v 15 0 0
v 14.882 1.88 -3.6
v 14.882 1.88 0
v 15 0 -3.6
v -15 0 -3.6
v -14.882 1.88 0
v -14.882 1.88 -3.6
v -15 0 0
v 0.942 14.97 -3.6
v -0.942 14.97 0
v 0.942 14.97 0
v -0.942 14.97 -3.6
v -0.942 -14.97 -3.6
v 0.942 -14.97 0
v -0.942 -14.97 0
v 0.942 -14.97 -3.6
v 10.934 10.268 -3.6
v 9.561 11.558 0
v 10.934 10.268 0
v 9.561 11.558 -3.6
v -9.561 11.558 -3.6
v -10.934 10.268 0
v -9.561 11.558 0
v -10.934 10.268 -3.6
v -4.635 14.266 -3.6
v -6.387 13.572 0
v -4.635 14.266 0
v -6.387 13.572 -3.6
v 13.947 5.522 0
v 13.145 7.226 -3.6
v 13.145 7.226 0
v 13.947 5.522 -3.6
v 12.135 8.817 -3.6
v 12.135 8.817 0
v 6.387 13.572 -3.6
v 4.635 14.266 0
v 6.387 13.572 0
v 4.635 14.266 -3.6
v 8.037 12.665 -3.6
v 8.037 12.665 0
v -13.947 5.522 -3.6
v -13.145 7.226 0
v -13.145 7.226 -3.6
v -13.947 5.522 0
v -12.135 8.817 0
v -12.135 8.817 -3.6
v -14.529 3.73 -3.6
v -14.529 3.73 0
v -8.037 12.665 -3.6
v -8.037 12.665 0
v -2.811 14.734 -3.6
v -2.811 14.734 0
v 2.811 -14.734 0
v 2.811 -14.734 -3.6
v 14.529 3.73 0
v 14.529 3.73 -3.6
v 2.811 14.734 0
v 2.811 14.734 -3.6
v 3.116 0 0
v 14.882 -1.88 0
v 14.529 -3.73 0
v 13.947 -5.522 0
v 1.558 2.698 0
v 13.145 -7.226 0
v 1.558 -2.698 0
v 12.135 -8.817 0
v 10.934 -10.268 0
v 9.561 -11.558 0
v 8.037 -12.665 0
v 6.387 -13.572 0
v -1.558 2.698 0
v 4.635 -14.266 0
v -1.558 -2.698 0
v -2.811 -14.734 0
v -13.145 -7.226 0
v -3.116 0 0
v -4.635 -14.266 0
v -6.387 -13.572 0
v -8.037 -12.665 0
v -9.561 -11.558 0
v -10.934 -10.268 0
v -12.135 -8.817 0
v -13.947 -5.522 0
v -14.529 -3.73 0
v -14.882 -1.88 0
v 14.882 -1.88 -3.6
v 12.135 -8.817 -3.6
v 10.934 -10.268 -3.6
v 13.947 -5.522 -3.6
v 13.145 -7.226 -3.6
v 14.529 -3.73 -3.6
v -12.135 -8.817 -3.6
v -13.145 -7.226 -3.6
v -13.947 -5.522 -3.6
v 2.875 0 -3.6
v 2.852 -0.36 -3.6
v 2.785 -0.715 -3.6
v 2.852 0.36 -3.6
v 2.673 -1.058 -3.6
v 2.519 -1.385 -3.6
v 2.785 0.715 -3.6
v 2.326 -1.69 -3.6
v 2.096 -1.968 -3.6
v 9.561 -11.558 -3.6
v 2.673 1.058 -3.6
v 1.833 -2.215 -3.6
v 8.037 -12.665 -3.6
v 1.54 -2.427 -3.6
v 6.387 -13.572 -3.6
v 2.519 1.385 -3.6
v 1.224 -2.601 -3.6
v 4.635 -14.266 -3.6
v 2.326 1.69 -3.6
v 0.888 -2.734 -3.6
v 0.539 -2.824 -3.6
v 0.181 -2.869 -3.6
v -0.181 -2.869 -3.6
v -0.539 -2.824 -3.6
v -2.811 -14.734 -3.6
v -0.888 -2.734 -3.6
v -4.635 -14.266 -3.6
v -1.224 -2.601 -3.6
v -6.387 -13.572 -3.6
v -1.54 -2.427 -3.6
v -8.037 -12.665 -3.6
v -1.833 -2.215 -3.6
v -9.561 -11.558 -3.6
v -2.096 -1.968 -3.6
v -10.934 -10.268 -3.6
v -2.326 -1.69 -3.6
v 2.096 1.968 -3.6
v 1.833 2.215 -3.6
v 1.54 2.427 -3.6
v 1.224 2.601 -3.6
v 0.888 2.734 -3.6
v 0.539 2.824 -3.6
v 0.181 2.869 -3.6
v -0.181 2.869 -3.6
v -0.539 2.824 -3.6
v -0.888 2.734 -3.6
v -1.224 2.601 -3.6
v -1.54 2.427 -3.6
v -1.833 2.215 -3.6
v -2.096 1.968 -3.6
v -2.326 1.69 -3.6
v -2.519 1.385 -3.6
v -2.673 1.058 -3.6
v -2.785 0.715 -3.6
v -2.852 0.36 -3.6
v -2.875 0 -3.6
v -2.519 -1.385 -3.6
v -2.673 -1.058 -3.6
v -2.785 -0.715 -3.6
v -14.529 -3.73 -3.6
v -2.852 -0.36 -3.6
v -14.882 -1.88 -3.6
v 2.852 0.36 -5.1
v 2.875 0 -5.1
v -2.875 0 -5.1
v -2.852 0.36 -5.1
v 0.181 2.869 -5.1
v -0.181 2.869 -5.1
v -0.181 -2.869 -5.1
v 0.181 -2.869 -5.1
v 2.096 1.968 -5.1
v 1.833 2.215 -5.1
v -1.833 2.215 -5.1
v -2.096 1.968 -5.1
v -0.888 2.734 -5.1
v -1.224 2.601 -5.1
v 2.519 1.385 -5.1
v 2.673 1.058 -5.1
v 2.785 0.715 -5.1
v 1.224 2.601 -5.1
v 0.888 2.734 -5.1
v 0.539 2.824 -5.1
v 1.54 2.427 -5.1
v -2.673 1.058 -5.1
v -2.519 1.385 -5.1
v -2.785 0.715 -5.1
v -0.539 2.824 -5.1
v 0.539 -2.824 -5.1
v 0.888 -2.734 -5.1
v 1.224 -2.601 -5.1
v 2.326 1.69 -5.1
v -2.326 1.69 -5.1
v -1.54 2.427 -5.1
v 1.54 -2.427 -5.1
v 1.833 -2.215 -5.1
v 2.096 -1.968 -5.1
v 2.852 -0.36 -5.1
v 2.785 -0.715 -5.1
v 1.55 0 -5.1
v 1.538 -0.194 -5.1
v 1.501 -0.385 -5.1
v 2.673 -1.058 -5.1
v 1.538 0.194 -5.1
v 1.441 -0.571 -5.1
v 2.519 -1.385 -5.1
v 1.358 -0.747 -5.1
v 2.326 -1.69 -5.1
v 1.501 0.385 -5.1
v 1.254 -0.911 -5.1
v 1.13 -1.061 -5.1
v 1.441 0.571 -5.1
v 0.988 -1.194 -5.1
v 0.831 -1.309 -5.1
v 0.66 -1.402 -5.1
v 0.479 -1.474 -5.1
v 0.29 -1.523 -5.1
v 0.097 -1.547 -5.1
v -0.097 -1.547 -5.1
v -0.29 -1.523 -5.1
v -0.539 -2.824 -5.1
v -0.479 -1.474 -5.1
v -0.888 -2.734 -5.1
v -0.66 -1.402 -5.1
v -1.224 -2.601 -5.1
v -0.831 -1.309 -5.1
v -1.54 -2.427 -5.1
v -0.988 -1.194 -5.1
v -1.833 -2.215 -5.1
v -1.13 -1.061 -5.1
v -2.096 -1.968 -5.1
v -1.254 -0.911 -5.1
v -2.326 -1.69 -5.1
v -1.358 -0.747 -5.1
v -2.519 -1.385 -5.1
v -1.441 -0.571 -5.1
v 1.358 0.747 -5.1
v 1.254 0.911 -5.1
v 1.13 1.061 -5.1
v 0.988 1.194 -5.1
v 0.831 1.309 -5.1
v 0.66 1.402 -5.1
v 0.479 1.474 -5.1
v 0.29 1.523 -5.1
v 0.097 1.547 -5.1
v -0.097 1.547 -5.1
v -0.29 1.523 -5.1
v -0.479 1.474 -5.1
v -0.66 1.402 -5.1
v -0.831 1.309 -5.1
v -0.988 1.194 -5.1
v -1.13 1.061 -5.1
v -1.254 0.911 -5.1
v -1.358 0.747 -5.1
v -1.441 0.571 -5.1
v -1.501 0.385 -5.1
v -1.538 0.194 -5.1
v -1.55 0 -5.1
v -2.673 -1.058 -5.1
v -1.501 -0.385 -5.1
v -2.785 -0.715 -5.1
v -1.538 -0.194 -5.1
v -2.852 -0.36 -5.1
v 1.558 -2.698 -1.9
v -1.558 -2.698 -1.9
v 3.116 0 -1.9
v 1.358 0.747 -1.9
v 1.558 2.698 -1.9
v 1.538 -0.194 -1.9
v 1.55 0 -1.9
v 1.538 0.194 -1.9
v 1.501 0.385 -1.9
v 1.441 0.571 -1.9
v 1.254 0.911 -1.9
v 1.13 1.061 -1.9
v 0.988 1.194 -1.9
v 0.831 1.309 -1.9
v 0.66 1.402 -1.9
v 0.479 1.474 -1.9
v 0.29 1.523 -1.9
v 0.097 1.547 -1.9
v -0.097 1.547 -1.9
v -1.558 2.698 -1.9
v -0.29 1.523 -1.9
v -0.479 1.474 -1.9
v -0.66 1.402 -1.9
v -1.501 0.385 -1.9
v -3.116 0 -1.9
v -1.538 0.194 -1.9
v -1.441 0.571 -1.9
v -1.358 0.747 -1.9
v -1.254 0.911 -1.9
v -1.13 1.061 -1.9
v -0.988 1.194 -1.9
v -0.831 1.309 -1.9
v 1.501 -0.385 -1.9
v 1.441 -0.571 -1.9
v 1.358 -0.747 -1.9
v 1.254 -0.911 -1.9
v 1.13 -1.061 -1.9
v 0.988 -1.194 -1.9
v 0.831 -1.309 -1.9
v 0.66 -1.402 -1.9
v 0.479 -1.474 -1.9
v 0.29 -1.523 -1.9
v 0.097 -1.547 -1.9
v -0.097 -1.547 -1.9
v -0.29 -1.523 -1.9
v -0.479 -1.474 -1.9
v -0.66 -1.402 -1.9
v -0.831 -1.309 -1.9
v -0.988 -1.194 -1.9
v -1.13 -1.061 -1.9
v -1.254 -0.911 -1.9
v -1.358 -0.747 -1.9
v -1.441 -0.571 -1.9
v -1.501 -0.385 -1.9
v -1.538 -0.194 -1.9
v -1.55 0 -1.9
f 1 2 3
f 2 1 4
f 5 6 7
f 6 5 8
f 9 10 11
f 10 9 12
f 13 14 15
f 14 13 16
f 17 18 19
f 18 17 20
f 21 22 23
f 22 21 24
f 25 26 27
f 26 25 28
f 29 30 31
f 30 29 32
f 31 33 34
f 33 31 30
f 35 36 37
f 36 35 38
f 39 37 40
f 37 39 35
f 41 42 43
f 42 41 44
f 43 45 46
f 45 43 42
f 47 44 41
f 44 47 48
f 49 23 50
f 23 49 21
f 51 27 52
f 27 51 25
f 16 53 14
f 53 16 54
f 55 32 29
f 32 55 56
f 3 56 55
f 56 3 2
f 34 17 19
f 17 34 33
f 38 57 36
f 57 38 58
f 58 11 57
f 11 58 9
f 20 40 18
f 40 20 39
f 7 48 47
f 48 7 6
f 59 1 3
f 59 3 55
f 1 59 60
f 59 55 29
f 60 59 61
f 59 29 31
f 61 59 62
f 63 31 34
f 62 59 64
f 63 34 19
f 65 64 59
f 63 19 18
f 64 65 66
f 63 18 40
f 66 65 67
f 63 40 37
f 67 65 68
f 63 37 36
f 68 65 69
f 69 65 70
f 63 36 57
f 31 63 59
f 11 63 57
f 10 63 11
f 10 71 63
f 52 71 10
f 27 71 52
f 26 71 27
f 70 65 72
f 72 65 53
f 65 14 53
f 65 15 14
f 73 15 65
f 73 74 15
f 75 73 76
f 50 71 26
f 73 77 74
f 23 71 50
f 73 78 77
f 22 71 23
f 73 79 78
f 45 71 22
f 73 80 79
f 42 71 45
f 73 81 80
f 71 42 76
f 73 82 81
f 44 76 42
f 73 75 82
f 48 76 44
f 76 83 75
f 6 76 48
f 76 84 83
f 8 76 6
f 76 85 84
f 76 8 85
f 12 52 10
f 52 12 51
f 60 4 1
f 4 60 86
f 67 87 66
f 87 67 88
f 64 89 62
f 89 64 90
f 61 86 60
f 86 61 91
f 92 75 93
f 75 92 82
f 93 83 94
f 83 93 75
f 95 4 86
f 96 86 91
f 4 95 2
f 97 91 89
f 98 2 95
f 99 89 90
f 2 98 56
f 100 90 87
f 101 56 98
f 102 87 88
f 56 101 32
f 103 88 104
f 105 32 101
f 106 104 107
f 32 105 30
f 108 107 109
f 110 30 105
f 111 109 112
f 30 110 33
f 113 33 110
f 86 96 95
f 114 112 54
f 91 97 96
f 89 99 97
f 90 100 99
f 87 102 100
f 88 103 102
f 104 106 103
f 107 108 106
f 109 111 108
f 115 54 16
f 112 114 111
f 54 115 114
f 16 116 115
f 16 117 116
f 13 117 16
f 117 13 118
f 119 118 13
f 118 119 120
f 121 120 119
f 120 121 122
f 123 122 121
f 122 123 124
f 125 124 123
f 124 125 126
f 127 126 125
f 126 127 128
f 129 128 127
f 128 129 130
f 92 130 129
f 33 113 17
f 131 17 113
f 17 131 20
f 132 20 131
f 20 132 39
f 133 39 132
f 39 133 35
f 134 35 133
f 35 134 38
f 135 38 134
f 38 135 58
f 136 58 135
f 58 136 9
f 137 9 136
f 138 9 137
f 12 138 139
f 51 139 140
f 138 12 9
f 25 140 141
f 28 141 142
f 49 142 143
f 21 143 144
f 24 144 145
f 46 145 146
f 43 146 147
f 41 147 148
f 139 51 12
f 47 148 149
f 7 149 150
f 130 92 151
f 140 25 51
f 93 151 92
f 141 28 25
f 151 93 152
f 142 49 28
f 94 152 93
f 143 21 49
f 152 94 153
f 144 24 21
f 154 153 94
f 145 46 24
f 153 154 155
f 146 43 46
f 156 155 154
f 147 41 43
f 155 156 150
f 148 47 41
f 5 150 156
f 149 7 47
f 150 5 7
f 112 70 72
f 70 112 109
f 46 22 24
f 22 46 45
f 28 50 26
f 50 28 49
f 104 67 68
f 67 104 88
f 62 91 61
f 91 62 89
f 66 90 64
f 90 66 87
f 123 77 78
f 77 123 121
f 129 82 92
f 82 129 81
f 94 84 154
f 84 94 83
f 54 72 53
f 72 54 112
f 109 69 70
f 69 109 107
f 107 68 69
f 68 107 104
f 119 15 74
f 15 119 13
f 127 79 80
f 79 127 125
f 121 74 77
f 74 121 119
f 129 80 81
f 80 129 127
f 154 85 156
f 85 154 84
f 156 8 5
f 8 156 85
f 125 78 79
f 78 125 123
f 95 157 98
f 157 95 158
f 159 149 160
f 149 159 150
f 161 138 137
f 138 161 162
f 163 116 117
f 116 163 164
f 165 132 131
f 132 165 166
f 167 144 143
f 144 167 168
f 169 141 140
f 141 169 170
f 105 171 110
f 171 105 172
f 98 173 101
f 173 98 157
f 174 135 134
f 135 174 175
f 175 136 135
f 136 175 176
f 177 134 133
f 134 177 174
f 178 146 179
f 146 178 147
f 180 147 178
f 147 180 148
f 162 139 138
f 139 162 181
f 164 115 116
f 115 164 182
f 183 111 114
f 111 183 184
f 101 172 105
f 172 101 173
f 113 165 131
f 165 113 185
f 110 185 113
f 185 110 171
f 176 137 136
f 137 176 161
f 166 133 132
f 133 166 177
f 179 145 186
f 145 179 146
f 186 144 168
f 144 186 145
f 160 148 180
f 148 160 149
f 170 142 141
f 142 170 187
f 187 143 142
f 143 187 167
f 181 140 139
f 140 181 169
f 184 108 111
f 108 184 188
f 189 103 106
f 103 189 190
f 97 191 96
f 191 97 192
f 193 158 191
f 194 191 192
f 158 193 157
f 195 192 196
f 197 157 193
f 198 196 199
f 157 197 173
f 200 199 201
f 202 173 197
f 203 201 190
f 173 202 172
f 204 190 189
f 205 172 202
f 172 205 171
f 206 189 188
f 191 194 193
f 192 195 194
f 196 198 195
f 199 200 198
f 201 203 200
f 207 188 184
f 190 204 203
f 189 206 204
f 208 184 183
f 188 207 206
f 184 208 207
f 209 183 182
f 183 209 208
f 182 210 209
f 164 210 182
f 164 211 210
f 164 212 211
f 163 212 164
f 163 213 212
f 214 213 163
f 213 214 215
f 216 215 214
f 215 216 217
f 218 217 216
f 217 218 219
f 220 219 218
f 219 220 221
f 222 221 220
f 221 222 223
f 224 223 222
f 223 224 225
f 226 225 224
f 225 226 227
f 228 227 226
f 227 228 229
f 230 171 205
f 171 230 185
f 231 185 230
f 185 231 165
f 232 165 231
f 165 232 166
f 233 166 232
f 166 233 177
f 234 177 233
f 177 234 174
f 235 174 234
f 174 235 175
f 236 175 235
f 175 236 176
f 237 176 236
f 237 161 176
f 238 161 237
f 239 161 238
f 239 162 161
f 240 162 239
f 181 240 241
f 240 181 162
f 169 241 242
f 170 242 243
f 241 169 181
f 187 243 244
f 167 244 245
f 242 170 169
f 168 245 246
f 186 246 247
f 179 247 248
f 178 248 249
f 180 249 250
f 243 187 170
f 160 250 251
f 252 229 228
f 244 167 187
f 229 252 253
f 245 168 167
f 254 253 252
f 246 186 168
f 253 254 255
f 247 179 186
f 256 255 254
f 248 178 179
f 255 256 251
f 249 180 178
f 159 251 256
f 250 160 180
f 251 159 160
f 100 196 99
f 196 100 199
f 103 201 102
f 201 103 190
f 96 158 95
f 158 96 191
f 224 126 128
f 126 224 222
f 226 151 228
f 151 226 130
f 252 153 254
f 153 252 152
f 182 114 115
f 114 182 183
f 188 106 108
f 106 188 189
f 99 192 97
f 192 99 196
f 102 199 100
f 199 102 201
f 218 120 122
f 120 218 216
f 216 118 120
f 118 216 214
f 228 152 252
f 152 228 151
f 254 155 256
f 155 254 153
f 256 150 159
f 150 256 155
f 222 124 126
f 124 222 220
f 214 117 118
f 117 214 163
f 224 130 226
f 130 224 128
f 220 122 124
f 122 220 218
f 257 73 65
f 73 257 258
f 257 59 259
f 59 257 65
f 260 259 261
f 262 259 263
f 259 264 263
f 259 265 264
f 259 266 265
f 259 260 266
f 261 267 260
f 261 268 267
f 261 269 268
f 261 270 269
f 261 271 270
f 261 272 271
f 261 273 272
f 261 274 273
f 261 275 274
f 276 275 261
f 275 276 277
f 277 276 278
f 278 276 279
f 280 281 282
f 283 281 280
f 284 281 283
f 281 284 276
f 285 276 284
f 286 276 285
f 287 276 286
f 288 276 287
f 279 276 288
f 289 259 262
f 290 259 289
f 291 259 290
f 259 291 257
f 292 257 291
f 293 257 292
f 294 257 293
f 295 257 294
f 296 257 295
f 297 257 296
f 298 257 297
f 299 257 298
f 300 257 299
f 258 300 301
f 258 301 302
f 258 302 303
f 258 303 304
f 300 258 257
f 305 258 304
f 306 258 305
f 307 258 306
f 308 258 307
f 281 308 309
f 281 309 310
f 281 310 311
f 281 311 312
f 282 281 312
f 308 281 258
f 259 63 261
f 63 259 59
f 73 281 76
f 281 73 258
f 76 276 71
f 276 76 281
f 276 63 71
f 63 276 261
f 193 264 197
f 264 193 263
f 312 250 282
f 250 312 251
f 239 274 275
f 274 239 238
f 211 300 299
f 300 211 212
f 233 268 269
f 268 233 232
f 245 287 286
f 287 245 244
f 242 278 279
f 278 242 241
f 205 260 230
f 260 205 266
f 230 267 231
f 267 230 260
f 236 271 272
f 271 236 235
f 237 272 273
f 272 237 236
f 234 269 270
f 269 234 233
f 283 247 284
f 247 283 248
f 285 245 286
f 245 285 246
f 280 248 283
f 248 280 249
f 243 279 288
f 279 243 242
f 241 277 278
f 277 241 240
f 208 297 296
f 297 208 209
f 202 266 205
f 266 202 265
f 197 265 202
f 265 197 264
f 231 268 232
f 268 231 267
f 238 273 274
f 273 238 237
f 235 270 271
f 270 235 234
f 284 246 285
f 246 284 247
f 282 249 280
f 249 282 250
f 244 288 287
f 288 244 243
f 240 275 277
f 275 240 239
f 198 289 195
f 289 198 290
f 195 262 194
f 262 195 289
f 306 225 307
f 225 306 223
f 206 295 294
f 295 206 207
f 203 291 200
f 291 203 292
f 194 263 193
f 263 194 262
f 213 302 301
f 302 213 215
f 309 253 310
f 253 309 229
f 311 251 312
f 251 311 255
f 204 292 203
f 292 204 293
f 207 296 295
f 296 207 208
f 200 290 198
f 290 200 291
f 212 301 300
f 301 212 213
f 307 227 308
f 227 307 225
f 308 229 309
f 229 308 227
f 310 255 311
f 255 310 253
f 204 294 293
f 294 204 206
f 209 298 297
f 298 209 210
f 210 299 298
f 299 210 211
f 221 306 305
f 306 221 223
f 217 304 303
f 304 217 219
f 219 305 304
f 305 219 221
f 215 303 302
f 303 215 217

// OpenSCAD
$fn = 50;


difference() {
	union() {
		translate(v = [0, 0, -3.6000000000]) {
			cylinder(h = 3.6000000000, r = 15.0000000000);
		}
		translate(v = [0, 0, -5.1000000000]) {
			cylinder(h = 5.1000000000, r = 2.8750000000);
		}
	}
	union() {
		translate(v = [0, 0, 0]) {
			rotate(a = [0, 0, 0]) {
				difference() {
					union() {
						translate(v = [0, 0, -1.9000000000]) {
							linear_extrude(height = 1.9000000000) {
								polygon(points = [[3.1158000000, 0.0000000000], [1.5579000000, 2.6983619531], [-1.5579000000, 2.6983619531], [-3.1158000000, 0.0000000000], [-1.5579000000, -2.6983619531], [1.5579000000, -2.6983619531]]);
							}
						}
					}
					union();
				}
			}
		}
		#translate(v = [0, 0, -100.0000000000]) {
			cylinder(h = 200, r = 1.5500000000);
		}
	}
}
